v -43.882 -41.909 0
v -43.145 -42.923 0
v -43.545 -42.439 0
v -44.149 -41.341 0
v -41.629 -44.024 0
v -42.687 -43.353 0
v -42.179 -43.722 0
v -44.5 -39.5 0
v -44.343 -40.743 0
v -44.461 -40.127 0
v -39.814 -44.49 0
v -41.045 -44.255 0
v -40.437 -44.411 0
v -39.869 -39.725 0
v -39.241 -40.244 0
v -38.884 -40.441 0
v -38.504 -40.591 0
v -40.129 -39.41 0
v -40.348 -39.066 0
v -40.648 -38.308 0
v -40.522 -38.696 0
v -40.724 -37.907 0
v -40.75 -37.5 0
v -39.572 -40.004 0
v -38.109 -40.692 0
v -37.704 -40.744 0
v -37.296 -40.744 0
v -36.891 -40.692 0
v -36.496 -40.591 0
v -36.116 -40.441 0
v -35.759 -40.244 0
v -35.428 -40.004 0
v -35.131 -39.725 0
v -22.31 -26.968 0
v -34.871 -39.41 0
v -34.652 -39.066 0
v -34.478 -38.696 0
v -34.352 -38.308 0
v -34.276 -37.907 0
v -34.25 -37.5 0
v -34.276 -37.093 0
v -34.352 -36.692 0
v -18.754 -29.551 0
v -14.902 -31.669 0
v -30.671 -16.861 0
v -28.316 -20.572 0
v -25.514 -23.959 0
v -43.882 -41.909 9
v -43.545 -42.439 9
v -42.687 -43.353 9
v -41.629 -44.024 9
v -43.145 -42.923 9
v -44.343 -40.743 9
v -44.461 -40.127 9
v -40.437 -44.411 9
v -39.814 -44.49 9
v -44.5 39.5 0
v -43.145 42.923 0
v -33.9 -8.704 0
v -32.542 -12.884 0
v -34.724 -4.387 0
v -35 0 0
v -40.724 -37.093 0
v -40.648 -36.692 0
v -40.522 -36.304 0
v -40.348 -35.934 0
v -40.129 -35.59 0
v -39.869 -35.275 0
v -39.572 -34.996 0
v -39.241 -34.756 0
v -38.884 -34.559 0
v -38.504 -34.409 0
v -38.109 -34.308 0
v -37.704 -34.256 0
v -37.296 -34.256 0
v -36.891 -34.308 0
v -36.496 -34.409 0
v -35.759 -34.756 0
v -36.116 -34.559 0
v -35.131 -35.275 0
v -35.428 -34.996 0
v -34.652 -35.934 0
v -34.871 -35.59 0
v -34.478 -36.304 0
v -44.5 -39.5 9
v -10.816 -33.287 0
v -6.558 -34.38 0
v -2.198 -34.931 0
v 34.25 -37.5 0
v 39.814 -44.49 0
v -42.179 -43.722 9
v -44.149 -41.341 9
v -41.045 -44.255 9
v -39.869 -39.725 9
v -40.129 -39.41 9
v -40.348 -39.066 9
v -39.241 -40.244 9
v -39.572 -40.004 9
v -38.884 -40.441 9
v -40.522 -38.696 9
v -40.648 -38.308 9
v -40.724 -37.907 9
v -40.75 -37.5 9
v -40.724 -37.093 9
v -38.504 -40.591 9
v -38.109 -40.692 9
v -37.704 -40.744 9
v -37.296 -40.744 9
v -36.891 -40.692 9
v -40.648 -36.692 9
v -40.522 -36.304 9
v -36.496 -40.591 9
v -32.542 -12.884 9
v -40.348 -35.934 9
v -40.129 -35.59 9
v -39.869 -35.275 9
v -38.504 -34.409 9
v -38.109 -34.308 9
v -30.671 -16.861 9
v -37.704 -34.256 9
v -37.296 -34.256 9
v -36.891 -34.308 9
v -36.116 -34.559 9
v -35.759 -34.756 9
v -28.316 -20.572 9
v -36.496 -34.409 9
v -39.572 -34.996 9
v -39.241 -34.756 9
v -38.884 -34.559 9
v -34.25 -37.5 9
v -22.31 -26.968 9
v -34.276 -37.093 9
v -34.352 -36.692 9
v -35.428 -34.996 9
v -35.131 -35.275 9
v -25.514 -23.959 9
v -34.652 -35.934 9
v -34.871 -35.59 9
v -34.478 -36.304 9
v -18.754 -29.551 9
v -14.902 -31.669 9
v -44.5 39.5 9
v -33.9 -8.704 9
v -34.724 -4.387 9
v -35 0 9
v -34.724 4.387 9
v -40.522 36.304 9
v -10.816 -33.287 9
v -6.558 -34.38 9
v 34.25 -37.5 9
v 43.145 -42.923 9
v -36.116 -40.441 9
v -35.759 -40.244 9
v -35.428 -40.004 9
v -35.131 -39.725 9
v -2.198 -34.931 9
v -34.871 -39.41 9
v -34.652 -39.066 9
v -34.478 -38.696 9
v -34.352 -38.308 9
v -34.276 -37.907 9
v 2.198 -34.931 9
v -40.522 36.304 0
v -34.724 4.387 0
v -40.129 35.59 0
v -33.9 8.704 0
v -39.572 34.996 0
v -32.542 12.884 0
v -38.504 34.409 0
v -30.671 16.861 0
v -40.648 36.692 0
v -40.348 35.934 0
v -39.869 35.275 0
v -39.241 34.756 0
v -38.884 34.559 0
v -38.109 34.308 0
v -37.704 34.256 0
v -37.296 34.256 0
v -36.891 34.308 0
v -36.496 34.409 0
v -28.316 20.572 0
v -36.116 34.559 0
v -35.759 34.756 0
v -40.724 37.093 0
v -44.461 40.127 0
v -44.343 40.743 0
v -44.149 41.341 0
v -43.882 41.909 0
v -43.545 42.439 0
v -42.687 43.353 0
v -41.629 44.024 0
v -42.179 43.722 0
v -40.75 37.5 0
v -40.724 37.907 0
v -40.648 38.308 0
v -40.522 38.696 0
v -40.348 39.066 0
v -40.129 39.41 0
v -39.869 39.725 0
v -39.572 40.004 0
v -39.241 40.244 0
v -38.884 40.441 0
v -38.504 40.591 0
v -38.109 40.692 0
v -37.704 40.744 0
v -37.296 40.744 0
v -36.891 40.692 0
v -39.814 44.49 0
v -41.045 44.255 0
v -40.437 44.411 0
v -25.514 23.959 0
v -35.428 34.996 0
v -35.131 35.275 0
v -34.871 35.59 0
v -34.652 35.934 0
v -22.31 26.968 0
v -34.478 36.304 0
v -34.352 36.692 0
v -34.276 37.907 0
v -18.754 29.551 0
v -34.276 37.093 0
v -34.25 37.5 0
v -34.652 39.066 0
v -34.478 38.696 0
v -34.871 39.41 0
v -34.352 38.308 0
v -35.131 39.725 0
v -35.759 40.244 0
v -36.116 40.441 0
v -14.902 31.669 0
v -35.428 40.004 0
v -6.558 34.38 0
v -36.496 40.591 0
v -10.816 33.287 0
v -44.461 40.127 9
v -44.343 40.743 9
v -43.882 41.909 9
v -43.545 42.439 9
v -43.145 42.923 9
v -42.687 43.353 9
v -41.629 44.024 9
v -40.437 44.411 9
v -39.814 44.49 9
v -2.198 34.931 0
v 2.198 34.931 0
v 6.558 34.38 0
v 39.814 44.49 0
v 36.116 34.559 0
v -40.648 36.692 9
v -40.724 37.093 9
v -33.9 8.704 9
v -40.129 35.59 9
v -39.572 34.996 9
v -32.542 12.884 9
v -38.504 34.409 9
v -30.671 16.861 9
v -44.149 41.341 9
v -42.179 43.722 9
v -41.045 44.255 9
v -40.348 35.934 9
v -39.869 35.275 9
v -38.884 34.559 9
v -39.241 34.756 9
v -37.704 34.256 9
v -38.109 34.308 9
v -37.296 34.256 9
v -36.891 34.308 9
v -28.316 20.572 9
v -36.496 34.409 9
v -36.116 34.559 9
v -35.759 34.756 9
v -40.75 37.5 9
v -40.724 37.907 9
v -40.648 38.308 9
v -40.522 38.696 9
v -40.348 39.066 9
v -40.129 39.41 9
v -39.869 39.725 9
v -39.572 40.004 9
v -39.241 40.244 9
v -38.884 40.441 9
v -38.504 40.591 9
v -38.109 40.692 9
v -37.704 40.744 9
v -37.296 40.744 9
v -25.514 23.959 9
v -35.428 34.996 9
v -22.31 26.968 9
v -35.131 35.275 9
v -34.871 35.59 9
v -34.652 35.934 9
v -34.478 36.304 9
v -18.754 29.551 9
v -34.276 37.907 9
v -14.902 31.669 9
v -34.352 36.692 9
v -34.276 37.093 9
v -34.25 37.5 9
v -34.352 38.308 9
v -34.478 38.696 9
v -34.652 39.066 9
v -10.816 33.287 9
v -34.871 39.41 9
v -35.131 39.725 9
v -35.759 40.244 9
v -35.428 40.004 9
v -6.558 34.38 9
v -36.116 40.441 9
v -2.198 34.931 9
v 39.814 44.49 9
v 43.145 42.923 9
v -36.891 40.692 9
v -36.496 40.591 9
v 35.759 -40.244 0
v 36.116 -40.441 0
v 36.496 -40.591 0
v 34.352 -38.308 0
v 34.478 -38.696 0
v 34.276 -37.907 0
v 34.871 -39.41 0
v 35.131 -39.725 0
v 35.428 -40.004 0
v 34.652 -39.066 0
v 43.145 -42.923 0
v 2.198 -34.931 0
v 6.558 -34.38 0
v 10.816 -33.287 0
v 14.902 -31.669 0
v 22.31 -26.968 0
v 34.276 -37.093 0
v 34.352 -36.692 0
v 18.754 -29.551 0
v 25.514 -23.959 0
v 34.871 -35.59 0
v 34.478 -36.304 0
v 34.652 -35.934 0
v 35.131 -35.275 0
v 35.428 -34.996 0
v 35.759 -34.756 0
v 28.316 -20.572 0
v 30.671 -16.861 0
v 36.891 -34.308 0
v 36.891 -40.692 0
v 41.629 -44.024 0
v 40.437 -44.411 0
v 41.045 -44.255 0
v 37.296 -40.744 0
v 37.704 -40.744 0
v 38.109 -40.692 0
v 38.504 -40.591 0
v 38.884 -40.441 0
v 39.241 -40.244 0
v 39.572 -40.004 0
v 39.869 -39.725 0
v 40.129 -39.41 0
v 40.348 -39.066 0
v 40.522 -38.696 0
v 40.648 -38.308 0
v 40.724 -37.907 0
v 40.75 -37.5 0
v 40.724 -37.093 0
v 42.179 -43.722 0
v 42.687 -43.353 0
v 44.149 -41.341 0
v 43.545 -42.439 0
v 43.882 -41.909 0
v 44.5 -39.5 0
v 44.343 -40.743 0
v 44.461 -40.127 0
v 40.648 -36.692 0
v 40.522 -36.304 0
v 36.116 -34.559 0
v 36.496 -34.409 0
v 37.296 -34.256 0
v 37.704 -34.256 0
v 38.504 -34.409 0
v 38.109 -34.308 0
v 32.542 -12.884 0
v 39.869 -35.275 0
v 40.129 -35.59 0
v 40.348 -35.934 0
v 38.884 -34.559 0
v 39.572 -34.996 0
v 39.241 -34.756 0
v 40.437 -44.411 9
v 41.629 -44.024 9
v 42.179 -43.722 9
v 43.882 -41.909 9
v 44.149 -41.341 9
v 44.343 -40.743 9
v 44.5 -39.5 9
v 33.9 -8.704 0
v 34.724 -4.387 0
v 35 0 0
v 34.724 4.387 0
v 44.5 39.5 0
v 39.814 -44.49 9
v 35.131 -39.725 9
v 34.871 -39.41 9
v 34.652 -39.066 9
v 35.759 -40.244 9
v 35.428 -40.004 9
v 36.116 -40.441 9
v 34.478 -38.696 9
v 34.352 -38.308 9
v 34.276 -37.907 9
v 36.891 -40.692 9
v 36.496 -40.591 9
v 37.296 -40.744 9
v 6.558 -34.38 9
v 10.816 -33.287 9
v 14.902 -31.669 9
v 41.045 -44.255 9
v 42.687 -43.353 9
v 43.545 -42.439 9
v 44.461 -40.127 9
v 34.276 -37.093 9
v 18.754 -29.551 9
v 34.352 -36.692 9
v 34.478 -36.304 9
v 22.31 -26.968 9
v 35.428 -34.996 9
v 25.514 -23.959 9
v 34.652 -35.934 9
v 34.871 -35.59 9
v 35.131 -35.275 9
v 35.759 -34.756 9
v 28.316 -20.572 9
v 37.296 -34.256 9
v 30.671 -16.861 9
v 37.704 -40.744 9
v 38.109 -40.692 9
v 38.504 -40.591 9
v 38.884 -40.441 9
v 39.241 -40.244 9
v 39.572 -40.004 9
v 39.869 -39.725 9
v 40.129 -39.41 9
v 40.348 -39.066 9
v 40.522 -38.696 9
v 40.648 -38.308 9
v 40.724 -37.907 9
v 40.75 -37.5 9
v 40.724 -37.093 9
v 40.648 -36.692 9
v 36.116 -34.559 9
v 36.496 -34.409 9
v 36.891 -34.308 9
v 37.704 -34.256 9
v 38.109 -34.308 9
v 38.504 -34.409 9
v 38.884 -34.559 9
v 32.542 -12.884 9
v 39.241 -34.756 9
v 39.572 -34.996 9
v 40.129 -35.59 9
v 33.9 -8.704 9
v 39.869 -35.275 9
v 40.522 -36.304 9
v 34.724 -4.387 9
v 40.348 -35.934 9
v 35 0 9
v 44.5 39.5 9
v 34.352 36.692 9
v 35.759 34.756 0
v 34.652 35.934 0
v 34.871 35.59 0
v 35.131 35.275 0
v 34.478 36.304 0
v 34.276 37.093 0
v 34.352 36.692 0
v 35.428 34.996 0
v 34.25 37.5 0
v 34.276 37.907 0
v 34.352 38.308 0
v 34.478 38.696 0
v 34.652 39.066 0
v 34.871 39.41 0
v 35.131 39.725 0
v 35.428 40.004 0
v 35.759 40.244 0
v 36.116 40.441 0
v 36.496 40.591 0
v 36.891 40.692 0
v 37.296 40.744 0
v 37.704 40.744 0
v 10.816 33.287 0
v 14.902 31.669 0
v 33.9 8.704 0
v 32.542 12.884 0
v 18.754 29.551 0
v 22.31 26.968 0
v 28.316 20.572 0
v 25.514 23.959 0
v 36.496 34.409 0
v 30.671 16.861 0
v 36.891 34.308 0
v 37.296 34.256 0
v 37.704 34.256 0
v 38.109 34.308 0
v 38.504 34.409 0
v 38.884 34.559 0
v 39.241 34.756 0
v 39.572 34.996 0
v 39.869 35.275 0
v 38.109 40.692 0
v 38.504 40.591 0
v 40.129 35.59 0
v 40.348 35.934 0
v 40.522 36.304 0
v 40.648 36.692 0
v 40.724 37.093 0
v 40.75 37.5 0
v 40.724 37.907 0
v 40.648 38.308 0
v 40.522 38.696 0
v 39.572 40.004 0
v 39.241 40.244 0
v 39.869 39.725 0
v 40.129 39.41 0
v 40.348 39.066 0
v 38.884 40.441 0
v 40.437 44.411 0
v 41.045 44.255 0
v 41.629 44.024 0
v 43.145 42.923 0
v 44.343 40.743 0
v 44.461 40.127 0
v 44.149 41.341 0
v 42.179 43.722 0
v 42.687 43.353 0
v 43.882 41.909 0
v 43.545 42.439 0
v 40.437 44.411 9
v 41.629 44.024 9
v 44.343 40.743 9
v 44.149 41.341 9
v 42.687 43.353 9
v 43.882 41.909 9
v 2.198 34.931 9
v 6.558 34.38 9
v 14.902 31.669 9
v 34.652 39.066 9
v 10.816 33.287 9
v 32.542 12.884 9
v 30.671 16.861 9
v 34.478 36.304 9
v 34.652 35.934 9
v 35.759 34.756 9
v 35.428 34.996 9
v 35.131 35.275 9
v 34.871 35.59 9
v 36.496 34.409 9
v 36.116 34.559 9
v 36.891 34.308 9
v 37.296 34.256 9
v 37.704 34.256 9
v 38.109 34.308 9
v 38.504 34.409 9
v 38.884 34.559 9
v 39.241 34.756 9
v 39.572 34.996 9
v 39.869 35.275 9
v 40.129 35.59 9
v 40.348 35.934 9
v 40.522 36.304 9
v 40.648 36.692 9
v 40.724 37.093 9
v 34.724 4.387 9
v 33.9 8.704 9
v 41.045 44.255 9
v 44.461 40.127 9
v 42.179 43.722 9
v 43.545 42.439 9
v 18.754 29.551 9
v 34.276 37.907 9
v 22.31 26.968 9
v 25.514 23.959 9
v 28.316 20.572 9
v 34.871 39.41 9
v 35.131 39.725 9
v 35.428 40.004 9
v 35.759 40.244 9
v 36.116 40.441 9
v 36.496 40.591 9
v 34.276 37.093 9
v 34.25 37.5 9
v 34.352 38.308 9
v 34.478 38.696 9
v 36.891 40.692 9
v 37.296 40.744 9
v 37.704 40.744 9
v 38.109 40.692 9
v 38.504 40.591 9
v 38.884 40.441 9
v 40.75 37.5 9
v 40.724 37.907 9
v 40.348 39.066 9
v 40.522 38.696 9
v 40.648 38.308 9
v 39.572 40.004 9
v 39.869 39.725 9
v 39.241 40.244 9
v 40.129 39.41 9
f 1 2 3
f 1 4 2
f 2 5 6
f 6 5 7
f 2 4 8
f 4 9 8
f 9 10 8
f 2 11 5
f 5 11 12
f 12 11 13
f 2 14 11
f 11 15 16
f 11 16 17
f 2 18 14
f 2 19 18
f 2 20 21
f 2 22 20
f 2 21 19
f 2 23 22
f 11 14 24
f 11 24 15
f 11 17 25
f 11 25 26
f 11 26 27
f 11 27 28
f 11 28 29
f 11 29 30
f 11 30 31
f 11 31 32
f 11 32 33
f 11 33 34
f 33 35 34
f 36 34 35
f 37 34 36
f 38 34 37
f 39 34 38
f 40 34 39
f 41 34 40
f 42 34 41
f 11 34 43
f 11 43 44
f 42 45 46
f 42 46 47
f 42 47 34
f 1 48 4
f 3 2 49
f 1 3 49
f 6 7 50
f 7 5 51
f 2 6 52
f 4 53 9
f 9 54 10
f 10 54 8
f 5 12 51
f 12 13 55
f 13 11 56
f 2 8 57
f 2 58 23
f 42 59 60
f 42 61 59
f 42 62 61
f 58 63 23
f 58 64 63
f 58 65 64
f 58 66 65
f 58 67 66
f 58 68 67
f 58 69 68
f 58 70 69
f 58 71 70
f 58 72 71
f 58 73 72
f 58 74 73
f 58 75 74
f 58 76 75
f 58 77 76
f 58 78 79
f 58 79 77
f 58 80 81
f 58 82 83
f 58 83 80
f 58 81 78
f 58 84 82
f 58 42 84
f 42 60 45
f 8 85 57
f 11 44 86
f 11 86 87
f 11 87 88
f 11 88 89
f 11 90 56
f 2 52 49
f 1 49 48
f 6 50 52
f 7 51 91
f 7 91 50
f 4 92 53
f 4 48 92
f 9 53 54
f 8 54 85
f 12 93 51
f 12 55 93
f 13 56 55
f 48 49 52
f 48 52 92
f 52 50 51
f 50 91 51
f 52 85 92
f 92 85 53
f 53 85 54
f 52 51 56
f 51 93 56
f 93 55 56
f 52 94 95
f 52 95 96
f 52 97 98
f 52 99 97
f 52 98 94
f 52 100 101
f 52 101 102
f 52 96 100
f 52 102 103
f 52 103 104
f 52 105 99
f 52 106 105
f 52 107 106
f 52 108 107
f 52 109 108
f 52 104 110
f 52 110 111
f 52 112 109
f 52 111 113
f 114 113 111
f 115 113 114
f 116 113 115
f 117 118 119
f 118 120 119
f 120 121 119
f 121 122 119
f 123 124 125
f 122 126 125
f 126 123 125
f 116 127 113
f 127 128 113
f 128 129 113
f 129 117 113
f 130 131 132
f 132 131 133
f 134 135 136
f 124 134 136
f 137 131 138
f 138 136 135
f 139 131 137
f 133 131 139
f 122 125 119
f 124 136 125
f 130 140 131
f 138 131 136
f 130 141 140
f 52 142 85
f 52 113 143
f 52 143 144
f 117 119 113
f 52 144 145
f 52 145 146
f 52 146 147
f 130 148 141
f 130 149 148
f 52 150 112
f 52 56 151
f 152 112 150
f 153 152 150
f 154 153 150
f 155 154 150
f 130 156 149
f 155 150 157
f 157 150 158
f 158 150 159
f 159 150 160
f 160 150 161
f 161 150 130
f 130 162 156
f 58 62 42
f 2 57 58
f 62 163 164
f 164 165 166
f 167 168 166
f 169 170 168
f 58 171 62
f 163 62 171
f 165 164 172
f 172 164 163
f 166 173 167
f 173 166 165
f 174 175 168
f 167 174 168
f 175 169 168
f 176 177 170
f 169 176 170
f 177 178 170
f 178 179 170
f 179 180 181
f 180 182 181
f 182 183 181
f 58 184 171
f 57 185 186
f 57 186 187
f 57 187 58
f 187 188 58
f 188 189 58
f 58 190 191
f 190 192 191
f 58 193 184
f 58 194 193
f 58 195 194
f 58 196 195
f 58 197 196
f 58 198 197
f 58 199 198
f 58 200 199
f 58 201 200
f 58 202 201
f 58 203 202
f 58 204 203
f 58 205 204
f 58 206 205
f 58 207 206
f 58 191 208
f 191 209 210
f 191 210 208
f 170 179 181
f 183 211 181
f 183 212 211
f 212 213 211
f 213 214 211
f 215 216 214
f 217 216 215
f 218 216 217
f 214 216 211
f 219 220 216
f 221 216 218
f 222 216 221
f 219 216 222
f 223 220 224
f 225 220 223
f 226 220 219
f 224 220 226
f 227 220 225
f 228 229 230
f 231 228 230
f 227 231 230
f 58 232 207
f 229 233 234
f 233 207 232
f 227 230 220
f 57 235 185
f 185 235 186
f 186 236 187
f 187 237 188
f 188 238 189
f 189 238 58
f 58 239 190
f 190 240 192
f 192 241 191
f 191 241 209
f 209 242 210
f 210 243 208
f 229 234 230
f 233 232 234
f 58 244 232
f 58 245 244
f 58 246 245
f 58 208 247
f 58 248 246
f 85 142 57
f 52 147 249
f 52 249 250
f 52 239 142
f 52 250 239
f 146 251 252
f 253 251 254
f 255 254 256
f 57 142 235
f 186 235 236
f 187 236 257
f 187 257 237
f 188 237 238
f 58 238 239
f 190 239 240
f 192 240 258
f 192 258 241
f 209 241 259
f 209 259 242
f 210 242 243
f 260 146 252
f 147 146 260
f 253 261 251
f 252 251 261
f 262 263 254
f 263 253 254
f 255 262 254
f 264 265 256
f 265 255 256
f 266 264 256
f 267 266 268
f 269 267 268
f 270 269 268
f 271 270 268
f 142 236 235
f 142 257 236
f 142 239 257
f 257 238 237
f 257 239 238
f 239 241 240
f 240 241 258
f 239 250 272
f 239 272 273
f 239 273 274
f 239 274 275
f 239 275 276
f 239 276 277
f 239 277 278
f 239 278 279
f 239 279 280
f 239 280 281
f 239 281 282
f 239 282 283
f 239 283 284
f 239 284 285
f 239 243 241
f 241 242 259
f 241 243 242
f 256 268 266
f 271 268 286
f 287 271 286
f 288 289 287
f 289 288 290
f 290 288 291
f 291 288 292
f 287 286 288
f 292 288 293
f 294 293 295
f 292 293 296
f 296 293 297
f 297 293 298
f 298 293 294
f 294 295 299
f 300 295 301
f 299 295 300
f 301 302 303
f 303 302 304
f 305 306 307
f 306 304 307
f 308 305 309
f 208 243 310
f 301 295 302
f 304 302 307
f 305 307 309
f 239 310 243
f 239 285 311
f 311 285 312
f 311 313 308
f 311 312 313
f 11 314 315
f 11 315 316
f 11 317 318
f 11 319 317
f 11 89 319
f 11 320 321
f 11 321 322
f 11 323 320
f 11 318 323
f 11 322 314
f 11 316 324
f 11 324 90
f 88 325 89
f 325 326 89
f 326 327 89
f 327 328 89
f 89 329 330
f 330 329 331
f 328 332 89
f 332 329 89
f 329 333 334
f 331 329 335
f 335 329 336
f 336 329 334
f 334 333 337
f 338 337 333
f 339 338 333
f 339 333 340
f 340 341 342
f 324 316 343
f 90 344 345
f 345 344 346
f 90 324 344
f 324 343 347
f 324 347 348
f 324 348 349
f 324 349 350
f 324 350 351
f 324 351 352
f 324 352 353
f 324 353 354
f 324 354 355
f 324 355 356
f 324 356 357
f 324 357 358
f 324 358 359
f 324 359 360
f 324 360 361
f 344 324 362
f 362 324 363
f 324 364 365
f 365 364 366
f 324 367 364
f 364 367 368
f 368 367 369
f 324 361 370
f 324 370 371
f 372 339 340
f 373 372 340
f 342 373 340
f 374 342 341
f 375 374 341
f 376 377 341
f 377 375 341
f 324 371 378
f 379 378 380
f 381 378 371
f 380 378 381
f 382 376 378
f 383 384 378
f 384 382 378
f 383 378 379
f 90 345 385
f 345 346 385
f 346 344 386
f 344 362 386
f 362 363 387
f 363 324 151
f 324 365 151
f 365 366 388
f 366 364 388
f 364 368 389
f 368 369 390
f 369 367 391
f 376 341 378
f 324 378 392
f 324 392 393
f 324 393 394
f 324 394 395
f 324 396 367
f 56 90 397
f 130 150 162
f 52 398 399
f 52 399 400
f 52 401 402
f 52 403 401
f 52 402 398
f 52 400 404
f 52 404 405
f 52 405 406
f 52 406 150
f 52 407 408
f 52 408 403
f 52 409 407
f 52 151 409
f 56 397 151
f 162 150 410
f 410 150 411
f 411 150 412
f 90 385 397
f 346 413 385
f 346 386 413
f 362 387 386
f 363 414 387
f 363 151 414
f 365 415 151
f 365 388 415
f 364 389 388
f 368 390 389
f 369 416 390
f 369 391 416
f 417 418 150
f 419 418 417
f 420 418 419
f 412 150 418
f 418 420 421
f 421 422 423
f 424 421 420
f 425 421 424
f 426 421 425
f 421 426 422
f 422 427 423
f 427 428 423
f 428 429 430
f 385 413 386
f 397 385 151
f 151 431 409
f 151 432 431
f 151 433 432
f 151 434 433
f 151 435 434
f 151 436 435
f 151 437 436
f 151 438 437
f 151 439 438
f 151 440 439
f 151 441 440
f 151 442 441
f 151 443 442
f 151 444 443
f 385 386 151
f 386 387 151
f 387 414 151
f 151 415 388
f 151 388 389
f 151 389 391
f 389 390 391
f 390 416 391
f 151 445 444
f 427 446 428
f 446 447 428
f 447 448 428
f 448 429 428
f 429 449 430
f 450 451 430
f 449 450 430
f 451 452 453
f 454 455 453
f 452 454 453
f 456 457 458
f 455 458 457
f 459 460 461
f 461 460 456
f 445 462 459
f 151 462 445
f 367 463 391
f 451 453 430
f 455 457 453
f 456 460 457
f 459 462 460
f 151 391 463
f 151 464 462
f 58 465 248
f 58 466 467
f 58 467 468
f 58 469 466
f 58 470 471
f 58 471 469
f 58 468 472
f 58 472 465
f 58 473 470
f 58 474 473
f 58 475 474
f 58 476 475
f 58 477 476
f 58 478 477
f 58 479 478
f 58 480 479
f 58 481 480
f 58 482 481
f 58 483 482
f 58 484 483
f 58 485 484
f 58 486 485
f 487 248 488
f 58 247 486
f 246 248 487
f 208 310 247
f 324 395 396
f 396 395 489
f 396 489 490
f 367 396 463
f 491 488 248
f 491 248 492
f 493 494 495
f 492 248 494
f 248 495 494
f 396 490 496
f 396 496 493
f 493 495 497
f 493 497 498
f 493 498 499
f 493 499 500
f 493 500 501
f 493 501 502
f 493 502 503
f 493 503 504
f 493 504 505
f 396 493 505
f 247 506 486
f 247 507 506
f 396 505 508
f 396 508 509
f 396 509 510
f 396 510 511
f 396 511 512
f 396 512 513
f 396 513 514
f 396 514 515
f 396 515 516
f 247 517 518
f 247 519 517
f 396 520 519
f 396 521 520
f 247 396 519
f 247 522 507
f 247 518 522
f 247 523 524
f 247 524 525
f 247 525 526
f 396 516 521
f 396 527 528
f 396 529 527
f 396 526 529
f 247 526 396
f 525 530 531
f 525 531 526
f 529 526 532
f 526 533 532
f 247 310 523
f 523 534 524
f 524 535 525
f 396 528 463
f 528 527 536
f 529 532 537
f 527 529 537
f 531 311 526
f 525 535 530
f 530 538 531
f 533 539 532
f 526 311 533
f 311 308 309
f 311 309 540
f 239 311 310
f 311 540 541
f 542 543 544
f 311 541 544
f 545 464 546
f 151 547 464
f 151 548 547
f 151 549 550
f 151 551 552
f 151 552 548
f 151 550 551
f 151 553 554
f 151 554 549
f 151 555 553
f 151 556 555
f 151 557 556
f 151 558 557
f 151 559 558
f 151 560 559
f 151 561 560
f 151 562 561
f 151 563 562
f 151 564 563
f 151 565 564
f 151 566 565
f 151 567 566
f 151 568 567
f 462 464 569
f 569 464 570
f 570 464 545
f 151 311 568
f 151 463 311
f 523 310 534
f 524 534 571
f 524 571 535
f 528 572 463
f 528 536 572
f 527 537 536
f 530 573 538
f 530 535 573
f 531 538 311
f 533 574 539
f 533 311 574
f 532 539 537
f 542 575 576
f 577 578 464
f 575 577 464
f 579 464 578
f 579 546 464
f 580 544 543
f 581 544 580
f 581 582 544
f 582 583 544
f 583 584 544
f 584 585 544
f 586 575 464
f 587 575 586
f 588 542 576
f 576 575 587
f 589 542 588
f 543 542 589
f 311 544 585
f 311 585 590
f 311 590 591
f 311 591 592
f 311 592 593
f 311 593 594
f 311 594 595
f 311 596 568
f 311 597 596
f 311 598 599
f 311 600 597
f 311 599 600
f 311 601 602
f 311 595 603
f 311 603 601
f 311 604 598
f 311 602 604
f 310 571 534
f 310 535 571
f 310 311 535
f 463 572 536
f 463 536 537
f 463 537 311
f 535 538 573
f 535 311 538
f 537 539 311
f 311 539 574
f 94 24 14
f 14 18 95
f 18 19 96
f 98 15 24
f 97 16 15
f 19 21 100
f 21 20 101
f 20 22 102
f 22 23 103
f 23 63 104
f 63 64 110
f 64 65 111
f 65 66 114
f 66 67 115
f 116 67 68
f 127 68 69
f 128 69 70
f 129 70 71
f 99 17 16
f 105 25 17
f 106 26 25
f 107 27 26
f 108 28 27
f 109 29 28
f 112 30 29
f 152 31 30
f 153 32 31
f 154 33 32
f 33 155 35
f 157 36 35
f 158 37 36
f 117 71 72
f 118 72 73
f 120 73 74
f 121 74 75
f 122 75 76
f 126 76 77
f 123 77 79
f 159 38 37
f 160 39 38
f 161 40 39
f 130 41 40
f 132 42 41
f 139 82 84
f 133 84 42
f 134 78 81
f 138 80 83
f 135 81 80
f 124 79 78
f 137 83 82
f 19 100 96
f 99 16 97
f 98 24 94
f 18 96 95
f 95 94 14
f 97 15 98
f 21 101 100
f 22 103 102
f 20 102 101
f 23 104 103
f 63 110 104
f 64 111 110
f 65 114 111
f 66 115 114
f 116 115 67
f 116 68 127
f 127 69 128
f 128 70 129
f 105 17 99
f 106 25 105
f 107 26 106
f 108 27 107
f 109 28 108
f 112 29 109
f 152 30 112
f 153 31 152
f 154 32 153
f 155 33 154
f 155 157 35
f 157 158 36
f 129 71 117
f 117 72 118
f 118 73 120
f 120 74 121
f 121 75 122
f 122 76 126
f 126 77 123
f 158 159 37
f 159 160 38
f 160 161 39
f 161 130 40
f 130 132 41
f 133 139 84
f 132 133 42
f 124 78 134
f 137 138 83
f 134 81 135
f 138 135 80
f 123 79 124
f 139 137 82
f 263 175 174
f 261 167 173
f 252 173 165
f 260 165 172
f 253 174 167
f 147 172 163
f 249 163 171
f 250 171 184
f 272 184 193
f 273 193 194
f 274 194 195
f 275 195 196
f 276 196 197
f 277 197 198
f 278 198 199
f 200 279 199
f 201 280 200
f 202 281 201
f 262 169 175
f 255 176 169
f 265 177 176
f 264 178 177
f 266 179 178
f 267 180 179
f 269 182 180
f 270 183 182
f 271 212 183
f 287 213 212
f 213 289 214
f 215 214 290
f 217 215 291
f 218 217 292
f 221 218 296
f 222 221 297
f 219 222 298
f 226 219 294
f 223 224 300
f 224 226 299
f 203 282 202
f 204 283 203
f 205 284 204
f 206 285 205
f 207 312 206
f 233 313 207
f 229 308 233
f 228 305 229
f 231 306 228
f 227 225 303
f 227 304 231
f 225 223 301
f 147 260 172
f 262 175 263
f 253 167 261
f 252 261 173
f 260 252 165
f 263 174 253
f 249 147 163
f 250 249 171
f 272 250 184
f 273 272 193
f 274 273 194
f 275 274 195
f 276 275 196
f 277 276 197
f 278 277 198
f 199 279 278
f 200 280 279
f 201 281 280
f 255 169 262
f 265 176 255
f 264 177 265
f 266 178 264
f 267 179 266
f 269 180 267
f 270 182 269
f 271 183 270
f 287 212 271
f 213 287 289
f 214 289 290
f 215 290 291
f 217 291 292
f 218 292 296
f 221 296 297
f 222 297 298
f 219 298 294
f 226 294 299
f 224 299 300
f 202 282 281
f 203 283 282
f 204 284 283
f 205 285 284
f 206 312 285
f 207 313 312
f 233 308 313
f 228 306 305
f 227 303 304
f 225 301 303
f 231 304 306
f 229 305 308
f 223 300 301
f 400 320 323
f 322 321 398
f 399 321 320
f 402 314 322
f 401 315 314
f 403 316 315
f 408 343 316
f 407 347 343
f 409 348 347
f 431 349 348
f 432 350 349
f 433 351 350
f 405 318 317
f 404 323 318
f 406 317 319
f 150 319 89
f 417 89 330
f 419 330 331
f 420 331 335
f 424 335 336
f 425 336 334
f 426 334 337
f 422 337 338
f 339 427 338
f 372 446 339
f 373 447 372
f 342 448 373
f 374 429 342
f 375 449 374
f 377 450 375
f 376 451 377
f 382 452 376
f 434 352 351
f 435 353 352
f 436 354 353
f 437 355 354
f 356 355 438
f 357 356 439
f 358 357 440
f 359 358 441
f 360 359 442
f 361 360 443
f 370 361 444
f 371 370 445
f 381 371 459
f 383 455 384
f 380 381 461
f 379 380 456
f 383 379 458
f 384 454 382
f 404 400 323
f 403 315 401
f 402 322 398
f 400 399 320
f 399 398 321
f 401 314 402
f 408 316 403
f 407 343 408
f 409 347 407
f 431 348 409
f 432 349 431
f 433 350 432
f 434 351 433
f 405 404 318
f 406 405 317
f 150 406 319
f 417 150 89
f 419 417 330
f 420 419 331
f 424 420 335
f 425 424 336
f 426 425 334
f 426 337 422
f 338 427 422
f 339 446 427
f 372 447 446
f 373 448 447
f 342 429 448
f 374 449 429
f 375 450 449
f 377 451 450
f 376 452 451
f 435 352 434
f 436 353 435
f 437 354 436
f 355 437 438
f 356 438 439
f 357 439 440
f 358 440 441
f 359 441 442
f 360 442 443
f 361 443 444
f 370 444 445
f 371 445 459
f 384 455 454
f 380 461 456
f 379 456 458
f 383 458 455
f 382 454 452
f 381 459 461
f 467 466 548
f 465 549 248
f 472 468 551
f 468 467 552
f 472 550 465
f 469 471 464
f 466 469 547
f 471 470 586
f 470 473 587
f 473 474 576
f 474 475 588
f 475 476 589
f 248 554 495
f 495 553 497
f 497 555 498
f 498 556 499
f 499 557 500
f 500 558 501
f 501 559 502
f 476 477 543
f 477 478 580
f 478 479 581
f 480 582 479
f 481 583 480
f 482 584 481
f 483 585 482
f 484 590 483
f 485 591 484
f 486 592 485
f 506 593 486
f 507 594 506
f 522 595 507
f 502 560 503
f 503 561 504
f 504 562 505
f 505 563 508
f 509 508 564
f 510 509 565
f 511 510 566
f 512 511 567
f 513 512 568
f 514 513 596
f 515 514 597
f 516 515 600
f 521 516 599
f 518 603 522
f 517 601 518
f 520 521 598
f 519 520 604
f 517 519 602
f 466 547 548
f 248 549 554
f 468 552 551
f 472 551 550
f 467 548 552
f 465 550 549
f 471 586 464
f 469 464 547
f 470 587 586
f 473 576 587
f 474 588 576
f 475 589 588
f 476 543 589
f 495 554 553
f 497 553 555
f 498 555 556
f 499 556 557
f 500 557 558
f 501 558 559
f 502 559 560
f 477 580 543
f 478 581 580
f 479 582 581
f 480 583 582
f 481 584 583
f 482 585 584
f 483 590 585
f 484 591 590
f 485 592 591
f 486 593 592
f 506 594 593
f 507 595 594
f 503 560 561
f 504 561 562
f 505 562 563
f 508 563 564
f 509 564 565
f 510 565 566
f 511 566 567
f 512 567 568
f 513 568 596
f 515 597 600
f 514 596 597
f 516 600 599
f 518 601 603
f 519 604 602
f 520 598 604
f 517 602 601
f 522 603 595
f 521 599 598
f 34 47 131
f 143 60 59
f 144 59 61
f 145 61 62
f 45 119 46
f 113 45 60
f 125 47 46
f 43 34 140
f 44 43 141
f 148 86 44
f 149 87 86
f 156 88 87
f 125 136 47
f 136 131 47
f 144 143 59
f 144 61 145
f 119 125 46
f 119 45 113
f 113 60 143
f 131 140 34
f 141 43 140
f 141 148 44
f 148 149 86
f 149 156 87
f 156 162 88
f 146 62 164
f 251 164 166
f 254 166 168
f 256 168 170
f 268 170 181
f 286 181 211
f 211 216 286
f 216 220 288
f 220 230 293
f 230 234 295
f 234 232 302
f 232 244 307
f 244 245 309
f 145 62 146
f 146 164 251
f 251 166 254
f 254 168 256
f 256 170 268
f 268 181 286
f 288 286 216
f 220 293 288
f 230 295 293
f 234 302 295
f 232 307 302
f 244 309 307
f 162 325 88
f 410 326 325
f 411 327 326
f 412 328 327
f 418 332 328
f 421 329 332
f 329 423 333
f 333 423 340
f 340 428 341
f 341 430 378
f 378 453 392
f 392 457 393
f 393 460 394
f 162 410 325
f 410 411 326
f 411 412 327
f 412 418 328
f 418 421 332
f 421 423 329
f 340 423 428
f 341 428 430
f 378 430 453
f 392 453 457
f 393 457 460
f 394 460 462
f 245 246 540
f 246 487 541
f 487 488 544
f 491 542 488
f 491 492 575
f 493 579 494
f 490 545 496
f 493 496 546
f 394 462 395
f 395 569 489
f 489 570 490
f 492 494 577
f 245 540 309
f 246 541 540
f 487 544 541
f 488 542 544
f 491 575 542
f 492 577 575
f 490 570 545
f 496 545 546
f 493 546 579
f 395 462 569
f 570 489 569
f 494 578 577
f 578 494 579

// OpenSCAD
$fn = 50;

difference() {
	union() {
		hull() {
			translate(v = [-39.5, 39.5, 0]) {
				cylinder(h = 9, r = 5);
			}
			translate(v = [39.5, 39.5, 0]) {
				cylinder(h = 9, r = 5);
			}
			translate(v = [-39.5, -39.5, 0]) {
				cylinder(h = 9, r = 5);
			}
			translate(v = [39.5, -39.5, 0]) {
				cylinder(h = 9, r = 5);
			}
		}
	}
	union() {
		translate(v = [-37.5, -37.5, -100.0]) {
			cylinder(h = 200, r = 3.25);
		}
		translate(v = [-37.5, 37.5, -100.0]) {
			cylinder(h = 200, r = 3.25);
		}
		translate(v = [37.5, -37.5, -100.0]) {
			cylinder(h = 200, r = 3.25);
		}
		translate(v = [37.5, 37.5, -100.0]) {
			cylinder(h = 200, r = 3.25);
		}
		translate(v = [-37.5, -37.5, -100.0]) {
			cylinder(h = 200, r = 1.8);
		}
		translate(v = [-37.5, 37.5, -100.0]) {
			cylinder(h = 200, r = 1.8);
		}
		translate(v = [37.5, -37.5, -100.0]) {
			cylinder(h = 200, r = 1.8);
		}
		translate(v = [37.5, 37.5, -100.0]) {
			cylinder(h = 200, r = 1.8);
		}
		cylinder(h = 9, r = 35.0);
	}
}
